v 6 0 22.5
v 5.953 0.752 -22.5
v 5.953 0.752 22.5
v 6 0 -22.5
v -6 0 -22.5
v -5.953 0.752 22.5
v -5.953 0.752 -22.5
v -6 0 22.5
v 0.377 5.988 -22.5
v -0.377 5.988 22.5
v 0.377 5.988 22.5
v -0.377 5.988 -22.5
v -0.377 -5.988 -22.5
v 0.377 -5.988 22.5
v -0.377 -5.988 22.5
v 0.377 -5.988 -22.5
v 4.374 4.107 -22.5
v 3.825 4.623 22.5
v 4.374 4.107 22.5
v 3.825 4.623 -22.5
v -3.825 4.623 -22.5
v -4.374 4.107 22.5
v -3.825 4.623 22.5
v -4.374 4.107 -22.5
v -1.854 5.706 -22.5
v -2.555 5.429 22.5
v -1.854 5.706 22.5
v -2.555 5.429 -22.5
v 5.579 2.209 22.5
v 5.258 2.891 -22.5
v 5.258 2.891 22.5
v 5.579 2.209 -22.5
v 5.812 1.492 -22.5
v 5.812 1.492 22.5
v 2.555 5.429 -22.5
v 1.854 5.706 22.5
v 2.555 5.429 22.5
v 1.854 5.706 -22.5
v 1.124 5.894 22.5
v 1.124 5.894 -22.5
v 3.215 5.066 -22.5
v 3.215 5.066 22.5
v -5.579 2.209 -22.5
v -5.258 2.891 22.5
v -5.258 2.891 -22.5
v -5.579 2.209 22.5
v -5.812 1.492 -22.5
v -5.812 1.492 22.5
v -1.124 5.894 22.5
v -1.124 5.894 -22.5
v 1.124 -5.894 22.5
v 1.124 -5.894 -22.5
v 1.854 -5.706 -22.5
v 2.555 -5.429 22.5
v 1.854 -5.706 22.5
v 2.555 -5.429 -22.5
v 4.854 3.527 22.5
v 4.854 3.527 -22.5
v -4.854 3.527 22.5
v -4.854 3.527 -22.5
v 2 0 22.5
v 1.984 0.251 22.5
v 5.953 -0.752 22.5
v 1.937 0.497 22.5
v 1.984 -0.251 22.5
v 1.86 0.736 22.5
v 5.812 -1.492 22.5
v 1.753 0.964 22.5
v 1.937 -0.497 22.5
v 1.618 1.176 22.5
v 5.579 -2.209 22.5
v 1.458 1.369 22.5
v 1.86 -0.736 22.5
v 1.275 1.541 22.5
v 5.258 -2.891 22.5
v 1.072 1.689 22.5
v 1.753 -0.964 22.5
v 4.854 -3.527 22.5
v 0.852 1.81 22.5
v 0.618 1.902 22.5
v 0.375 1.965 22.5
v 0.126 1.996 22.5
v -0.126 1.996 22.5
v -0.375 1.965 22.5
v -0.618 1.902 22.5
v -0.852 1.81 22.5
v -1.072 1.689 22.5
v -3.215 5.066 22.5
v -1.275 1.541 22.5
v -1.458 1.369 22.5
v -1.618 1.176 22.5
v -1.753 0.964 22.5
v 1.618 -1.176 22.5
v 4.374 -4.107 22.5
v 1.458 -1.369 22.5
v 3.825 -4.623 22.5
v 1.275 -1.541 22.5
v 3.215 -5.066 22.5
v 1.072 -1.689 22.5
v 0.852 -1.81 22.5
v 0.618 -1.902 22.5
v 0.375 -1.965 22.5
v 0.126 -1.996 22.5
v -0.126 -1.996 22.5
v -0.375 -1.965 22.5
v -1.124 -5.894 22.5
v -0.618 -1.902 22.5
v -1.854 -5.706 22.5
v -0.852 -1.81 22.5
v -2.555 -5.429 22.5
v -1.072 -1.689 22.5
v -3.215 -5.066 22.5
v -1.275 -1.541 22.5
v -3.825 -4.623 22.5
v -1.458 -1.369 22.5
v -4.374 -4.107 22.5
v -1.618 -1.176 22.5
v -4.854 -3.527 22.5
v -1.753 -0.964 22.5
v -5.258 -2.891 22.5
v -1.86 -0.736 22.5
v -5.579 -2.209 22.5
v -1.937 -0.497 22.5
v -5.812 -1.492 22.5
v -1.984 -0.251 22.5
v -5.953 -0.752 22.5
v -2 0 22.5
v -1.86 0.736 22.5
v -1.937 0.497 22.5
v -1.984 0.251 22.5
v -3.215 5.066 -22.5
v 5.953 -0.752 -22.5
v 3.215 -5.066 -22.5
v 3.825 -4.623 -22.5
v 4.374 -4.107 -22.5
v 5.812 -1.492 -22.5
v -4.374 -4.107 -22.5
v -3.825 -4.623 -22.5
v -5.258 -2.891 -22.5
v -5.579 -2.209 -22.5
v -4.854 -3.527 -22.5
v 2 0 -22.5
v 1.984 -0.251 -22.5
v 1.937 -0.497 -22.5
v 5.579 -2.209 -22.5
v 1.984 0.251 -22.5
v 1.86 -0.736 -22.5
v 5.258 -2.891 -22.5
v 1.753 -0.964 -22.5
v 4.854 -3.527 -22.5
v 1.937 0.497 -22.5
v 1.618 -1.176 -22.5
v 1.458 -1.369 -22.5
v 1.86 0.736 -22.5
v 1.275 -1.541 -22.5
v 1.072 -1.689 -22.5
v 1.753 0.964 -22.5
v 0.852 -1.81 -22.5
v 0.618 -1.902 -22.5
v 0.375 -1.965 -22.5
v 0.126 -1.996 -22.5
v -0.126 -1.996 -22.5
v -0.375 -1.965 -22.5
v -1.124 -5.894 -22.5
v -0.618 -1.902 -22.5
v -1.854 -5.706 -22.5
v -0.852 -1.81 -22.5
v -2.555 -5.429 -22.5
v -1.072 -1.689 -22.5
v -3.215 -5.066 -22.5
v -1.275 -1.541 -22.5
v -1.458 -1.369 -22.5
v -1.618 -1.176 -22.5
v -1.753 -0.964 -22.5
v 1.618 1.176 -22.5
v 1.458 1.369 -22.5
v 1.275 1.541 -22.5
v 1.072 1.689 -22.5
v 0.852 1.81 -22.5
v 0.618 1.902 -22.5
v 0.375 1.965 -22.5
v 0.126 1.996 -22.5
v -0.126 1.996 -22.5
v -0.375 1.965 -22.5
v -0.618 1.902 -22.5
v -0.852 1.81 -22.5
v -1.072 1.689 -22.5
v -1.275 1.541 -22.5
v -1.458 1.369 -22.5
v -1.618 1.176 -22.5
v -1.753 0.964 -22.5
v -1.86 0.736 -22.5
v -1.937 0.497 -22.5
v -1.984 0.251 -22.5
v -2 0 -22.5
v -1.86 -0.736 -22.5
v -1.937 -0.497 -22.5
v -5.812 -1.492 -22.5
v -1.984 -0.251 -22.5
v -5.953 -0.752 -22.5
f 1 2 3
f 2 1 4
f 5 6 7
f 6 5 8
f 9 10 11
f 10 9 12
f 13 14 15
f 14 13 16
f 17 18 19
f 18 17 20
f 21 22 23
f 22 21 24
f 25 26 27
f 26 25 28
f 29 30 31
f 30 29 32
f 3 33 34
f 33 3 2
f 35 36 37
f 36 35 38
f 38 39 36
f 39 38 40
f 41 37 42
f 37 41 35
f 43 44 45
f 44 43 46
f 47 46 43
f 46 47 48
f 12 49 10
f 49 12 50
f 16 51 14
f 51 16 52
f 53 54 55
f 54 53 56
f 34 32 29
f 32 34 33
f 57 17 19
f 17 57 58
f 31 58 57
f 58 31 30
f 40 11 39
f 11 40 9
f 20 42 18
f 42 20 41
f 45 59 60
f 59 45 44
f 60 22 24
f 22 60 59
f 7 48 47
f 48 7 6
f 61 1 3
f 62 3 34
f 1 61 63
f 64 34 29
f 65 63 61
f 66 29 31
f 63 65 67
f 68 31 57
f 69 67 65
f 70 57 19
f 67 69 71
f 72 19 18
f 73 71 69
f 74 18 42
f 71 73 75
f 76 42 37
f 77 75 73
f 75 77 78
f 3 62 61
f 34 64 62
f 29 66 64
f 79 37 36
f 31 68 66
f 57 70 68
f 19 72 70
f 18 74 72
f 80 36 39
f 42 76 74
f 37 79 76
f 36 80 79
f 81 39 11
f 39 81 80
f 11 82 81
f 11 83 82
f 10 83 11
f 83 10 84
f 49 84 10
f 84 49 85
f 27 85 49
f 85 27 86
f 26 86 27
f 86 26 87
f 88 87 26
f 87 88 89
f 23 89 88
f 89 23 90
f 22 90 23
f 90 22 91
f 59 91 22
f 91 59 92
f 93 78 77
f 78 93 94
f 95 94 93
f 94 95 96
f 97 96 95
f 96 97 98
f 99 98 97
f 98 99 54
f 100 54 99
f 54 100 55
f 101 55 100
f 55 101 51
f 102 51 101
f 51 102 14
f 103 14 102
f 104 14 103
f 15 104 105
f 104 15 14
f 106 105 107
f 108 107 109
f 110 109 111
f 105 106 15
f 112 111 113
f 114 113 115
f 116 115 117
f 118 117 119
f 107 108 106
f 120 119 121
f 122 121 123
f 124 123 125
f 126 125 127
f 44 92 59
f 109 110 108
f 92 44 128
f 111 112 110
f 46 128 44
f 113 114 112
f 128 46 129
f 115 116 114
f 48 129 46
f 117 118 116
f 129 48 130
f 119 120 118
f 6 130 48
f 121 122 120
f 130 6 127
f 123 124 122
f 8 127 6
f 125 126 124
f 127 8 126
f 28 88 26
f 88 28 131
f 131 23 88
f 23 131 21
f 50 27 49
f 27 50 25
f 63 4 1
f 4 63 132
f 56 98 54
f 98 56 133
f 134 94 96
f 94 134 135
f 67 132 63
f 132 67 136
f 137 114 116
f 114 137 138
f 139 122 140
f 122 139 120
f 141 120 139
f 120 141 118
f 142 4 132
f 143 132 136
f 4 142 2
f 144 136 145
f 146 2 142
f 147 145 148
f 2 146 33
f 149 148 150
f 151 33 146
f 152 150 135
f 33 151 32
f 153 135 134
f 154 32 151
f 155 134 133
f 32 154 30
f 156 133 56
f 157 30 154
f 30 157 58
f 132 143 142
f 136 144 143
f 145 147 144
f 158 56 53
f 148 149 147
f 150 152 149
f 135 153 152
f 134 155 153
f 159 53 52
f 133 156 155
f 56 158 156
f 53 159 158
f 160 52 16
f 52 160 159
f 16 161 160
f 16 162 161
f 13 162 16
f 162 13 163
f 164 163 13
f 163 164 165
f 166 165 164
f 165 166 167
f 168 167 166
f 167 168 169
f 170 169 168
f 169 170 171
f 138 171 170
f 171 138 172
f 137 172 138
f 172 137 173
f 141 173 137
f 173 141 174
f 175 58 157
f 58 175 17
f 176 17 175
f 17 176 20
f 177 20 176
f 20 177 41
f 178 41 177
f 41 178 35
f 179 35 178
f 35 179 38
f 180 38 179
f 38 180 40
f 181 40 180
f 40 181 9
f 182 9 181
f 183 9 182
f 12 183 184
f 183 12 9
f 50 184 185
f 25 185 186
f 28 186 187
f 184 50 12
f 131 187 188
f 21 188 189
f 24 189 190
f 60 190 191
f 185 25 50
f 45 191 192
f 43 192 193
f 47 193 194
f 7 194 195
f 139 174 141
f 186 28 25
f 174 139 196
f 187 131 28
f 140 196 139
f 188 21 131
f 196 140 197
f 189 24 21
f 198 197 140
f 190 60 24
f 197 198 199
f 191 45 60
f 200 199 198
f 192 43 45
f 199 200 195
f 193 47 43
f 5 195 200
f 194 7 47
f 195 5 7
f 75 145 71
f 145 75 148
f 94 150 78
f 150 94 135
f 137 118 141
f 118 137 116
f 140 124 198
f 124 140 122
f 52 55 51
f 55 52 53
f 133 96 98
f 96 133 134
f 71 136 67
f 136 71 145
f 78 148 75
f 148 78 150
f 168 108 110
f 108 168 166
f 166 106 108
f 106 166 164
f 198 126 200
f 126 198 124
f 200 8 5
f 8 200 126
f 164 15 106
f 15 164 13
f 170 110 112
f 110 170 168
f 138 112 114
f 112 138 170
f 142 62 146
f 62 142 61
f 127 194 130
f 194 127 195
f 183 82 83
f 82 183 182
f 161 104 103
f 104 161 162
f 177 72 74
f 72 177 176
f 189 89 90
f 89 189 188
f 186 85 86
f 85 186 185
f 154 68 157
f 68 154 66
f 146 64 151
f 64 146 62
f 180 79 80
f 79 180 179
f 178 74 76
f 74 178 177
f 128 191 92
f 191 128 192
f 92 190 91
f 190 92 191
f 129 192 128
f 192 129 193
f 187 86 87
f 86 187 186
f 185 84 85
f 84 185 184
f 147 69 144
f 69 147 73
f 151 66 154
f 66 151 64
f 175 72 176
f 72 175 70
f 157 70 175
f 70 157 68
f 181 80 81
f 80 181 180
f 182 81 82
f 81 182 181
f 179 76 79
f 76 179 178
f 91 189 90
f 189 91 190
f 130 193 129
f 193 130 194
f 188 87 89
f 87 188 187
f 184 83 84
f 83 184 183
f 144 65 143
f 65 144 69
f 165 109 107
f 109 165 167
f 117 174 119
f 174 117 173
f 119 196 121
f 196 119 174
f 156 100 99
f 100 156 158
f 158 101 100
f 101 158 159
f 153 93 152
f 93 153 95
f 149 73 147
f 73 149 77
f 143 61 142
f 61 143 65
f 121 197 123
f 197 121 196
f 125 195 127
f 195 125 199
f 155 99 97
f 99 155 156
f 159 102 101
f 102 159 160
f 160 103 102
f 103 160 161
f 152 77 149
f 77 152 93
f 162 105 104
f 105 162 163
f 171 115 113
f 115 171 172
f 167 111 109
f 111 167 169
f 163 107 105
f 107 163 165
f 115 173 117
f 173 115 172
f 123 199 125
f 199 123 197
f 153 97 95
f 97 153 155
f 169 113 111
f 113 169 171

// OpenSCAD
$fn = 50;


difference() {
	union() {
		translate(v = [0, 0, -22.5000000000]) {
			cylinder(h = 45, r = 6.0000000000);
		}
	}
	union() {
		translate(v = [0, 0, -100.0000000000]) {
			cylinder(h = 200, r = 2);
		}
	}
}
